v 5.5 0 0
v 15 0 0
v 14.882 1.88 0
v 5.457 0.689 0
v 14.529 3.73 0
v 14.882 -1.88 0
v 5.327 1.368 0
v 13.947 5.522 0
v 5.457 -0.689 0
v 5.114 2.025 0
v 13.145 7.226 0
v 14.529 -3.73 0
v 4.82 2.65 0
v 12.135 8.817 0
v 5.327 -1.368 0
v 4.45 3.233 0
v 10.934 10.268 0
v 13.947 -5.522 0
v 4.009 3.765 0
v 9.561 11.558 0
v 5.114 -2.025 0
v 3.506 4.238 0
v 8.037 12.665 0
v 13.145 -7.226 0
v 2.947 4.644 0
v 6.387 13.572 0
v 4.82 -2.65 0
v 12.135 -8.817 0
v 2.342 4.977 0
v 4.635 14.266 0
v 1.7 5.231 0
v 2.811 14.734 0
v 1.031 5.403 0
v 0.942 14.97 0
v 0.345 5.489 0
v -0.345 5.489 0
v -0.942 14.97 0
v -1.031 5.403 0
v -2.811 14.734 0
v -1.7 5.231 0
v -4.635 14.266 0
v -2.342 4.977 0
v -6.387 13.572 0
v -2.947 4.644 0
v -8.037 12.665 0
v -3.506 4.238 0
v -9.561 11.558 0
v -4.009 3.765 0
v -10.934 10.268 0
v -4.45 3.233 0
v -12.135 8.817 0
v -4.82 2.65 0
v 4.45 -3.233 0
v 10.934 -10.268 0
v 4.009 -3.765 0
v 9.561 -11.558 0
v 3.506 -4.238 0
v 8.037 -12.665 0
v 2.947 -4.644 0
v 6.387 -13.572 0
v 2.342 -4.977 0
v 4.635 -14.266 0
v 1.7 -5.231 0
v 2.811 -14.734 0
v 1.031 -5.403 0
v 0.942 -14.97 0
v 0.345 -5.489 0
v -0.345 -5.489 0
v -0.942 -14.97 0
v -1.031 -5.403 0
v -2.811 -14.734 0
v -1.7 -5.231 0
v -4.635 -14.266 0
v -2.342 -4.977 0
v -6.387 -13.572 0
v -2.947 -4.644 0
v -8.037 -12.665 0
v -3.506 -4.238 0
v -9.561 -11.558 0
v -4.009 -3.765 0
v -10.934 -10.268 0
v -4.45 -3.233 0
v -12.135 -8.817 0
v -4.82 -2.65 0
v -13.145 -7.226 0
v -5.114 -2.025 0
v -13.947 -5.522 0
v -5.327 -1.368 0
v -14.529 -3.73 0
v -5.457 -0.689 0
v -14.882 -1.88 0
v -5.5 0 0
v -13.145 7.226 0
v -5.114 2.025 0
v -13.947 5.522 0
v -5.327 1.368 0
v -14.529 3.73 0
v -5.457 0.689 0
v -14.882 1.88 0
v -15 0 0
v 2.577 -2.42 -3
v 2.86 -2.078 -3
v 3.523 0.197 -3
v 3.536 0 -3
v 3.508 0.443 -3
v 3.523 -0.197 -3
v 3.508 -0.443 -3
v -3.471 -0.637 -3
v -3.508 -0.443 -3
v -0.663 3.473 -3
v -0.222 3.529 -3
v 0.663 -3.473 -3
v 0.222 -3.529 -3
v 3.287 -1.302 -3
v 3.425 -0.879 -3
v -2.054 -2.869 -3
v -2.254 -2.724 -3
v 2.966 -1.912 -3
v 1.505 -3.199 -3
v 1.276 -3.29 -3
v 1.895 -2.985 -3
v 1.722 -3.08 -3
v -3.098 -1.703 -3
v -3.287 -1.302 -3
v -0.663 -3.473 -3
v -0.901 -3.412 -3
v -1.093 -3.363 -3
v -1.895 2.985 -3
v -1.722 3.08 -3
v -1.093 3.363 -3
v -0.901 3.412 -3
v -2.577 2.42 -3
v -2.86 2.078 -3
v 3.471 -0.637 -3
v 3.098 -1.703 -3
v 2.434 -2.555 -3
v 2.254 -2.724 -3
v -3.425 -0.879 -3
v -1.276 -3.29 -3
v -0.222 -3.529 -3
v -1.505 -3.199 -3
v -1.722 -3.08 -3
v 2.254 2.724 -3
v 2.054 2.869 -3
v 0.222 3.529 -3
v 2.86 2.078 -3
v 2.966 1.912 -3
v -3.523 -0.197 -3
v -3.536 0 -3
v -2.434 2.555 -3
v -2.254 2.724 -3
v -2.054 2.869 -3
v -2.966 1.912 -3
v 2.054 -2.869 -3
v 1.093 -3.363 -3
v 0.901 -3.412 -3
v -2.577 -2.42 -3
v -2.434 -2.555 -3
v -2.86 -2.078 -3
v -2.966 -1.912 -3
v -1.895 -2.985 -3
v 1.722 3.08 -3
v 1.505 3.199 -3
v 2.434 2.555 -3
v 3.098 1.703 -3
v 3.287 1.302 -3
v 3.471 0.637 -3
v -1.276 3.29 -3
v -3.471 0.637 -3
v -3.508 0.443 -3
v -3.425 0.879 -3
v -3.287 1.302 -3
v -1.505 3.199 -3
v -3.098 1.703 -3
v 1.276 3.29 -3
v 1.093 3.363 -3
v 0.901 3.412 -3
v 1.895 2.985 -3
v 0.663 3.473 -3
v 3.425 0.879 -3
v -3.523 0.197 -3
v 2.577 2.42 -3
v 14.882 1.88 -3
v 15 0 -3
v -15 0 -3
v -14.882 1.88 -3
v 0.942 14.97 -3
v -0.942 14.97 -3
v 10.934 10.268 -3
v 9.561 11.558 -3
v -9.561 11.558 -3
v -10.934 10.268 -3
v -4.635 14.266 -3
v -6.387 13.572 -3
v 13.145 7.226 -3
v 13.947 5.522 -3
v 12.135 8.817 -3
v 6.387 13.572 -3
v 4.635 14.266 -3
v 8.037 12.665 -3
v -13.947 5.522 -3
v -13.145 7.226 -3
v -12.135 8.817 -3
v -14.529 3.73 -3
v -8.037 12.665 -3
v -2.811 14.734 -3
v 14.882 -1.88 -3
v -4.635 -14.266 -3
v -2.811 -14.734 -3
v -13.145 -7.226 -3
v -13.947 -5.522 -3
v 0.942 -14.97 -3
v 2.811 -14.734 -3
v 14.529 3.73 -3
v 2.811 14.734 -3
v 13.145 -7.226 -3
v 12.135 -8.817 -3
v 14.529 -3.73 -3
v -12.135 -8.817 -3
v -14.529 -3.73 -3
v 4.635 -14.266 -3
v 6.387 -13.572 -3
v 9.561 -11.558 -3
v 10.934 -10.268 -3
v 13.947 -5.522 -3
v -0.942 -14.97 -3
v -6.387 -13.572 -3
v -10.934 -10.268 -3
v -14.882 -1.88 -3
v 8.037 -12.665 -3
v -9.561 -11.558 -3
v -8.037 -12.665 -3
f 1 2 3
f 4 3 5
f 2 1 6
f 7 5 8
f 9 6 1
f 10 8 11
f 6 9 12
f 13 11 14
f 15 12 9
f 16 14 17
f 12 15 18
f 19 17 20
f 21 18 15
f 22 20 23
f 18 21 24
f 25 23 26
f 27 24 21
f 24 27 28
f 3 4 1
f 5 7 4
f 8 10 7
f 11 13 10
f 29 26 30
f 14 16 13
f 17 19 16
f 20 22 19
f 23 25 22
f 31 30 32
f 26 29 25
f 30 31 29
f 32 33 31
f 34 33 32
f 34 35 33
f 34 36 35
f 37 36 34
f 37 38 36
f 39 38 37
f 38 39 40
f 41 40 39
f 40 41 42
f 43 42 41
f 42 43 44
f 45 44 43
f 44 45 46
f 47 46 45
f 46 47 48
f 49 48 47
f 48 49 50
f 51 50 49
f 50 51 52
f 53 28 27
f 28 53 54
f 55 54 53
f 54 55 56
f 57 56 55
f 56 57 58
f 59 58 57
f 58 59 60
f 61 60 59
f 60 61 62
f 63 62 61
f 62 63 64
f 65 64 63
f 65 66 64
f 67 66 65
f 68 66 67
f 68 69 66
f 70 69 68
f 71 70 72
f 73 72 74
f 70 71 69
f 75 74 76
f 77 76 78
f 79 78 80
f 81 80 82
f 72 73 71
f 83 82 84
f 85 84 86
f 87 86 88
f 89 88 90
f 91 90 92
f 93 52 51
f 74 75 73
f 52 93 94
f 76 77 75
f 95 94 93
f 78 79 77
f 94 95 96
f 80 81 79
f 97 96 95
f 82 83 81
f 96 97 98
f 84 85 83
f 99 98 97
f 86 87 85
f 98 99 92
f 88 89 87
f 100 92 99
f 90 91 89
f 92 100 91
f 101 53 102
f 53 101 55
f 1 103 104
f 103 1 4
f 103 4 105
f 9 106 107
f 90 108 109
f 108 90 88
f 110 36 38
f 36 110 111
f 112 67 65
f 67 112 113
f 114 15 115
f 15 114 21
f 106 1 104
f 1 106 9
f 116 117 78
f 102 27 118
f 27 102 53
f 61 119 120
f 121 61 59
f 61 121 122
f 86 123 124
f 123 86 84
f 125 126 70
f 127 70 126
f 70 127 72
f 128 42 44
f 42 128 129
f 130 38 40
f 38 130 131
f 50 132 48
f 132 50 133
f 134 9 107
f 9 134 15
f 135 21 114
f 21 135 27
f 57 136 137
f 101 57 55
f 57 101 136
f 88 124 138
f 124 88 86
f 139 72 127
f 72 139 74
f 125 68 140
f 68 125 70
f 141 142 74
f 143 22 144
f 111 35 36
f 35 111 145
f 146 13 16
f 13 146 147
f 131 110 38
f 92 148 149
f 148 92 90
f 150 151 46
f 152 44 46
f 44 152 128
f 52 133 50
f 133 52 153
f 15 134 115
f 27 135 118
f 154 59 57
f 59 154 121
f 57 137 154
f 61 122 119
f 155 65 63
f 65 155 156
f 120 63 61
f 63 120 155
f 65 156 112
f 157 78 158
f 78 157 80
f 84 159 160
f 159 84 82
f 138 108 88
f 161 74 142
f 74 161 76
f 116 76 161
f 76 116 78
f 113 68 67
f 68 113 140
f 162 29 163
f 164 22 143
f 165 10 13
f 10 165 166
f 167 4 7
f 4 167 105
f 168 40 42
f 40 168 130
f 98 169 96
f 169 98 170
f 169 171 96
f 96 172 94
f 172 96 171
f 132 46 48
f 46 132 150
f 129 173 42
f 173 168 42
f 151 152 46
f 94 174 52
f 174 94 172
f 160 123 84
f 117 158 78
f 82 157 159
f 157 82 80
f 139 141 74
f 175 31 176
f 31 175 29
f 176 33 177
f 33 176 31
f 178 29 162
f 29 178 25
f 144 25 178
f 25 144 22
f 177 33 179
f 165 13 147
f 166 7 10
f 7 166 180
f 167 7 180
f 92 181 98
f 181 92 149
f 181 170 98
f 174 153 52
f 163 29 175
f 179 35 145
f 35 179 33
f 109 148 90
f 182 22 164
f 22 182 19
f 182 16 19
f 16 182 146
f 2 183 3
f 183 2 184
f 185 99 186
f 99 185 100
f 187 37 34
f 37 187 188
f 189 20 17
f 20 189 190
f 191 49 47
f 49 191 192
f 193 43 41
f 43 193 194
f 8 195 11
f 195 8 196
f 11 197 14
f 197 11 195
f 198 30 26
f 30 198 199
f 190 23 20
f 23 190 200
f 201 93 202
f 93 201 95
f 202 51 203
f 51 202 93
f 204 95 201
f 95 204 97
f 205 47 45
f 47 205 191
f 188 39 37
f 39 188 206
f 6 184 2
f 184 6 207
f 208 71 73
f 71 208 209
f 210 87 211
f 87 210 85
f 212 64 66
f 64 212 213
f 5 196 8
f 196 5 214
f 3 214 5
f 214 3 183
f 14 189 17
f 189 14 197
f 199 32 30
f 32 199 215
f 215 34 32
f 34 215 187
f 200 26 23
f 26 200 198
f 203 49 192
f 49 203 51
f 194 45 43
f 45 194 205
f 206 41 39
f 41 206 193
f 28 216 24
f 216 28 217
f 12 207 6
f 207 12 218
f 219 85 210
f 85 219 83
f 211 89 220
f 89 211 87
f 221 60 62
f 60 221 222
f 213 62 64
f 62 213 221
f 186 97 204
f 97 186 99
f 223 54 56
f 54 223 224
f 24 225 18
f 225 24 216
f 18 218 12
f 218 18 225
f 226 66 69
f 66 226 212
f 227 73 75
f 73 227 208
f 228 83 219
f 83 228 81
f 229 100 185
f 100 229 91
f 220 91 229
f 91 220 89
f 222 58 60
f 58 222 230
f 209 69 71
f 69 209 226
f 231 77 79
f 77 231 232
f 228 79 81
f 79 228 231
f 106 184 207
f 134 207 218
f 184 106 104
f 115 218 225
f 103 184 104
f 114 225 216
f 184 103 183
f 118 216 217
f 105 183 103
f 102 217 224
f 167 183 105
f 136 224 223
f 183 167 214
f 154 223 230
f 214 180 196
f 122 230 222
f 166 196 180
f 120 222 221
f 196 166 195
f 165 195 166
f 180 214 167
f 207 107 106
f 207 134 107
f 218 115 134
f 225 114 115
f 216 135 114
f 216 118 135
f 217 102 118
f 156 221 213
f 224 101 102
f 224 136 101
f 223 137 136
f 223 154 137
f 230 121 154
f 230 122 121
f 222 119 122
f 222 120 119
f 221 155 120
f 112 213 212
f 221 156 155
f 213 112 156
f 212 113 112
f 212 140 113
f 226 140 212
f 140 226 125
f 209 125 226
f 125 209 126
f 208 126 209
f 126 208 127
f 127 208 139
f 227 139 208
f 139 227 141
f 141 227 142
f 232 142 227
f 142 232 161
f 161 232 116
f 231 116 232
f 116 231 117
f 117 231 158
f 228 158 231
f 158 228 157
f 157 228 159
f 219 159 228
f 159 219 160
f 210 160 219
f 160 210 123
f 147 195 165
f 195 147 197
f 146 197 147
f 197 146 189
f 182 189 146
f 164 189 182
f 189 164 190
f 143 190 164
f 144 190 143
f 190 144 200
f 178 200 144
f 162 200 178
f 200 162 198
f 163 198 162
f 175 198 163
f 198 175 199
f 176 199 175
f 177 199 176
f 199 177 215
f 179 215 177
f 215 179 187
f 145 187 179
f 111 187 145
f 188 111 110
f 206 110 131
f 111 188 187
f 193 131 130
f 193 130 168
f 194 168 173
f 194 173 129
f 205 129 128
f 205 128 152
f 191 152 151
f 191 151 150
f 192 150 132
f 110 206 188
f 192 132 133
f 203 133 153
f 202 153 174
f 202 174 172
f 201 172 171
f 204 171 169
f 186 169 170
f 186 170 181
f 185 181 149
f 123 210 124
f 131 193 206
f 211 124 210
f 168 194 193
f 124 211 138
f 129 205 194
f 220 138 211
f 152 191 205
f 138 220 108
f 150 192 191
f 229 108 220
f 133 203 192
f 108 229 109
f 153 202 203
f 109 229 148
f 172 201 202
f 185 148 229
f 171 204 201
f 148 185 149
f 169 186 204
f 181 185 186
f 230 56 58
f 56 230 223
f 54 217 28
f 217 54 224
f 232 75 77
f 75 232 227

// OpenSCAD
$fn = 50;


difference() {
	union() {
		translate(v = [0, 0, -3.0000000000]) {
			cylinder(h = 3, r = 15.0000000000);
		}
	}
	union() {
		translate(v = [0, 0, 0]) {
			rotate(a = [0, 0, 0]) {
				difference() {
					union() {
						translate(v = [0, 0, -3.0000000000]) {
							cylinder(h = 3, r = 2.2500000000);
						}
						translate(v = [0, 0, -4.2000000000]) {
							cylinder(h = 4.2000000000, r1 = 2.7500000000, r2 = 5.5000000000);
						}
						translate(v = [0, 0, -3.0000000000]) {
							cylinder(h = 3, r = 2.7500000000);
						}
						translate(v = [0, 0, -3.0000000000]) {
							cylinder(h = 3, r = 2.2500000000);
						}
					}
					union();
				}
			}
		}
	}
}
